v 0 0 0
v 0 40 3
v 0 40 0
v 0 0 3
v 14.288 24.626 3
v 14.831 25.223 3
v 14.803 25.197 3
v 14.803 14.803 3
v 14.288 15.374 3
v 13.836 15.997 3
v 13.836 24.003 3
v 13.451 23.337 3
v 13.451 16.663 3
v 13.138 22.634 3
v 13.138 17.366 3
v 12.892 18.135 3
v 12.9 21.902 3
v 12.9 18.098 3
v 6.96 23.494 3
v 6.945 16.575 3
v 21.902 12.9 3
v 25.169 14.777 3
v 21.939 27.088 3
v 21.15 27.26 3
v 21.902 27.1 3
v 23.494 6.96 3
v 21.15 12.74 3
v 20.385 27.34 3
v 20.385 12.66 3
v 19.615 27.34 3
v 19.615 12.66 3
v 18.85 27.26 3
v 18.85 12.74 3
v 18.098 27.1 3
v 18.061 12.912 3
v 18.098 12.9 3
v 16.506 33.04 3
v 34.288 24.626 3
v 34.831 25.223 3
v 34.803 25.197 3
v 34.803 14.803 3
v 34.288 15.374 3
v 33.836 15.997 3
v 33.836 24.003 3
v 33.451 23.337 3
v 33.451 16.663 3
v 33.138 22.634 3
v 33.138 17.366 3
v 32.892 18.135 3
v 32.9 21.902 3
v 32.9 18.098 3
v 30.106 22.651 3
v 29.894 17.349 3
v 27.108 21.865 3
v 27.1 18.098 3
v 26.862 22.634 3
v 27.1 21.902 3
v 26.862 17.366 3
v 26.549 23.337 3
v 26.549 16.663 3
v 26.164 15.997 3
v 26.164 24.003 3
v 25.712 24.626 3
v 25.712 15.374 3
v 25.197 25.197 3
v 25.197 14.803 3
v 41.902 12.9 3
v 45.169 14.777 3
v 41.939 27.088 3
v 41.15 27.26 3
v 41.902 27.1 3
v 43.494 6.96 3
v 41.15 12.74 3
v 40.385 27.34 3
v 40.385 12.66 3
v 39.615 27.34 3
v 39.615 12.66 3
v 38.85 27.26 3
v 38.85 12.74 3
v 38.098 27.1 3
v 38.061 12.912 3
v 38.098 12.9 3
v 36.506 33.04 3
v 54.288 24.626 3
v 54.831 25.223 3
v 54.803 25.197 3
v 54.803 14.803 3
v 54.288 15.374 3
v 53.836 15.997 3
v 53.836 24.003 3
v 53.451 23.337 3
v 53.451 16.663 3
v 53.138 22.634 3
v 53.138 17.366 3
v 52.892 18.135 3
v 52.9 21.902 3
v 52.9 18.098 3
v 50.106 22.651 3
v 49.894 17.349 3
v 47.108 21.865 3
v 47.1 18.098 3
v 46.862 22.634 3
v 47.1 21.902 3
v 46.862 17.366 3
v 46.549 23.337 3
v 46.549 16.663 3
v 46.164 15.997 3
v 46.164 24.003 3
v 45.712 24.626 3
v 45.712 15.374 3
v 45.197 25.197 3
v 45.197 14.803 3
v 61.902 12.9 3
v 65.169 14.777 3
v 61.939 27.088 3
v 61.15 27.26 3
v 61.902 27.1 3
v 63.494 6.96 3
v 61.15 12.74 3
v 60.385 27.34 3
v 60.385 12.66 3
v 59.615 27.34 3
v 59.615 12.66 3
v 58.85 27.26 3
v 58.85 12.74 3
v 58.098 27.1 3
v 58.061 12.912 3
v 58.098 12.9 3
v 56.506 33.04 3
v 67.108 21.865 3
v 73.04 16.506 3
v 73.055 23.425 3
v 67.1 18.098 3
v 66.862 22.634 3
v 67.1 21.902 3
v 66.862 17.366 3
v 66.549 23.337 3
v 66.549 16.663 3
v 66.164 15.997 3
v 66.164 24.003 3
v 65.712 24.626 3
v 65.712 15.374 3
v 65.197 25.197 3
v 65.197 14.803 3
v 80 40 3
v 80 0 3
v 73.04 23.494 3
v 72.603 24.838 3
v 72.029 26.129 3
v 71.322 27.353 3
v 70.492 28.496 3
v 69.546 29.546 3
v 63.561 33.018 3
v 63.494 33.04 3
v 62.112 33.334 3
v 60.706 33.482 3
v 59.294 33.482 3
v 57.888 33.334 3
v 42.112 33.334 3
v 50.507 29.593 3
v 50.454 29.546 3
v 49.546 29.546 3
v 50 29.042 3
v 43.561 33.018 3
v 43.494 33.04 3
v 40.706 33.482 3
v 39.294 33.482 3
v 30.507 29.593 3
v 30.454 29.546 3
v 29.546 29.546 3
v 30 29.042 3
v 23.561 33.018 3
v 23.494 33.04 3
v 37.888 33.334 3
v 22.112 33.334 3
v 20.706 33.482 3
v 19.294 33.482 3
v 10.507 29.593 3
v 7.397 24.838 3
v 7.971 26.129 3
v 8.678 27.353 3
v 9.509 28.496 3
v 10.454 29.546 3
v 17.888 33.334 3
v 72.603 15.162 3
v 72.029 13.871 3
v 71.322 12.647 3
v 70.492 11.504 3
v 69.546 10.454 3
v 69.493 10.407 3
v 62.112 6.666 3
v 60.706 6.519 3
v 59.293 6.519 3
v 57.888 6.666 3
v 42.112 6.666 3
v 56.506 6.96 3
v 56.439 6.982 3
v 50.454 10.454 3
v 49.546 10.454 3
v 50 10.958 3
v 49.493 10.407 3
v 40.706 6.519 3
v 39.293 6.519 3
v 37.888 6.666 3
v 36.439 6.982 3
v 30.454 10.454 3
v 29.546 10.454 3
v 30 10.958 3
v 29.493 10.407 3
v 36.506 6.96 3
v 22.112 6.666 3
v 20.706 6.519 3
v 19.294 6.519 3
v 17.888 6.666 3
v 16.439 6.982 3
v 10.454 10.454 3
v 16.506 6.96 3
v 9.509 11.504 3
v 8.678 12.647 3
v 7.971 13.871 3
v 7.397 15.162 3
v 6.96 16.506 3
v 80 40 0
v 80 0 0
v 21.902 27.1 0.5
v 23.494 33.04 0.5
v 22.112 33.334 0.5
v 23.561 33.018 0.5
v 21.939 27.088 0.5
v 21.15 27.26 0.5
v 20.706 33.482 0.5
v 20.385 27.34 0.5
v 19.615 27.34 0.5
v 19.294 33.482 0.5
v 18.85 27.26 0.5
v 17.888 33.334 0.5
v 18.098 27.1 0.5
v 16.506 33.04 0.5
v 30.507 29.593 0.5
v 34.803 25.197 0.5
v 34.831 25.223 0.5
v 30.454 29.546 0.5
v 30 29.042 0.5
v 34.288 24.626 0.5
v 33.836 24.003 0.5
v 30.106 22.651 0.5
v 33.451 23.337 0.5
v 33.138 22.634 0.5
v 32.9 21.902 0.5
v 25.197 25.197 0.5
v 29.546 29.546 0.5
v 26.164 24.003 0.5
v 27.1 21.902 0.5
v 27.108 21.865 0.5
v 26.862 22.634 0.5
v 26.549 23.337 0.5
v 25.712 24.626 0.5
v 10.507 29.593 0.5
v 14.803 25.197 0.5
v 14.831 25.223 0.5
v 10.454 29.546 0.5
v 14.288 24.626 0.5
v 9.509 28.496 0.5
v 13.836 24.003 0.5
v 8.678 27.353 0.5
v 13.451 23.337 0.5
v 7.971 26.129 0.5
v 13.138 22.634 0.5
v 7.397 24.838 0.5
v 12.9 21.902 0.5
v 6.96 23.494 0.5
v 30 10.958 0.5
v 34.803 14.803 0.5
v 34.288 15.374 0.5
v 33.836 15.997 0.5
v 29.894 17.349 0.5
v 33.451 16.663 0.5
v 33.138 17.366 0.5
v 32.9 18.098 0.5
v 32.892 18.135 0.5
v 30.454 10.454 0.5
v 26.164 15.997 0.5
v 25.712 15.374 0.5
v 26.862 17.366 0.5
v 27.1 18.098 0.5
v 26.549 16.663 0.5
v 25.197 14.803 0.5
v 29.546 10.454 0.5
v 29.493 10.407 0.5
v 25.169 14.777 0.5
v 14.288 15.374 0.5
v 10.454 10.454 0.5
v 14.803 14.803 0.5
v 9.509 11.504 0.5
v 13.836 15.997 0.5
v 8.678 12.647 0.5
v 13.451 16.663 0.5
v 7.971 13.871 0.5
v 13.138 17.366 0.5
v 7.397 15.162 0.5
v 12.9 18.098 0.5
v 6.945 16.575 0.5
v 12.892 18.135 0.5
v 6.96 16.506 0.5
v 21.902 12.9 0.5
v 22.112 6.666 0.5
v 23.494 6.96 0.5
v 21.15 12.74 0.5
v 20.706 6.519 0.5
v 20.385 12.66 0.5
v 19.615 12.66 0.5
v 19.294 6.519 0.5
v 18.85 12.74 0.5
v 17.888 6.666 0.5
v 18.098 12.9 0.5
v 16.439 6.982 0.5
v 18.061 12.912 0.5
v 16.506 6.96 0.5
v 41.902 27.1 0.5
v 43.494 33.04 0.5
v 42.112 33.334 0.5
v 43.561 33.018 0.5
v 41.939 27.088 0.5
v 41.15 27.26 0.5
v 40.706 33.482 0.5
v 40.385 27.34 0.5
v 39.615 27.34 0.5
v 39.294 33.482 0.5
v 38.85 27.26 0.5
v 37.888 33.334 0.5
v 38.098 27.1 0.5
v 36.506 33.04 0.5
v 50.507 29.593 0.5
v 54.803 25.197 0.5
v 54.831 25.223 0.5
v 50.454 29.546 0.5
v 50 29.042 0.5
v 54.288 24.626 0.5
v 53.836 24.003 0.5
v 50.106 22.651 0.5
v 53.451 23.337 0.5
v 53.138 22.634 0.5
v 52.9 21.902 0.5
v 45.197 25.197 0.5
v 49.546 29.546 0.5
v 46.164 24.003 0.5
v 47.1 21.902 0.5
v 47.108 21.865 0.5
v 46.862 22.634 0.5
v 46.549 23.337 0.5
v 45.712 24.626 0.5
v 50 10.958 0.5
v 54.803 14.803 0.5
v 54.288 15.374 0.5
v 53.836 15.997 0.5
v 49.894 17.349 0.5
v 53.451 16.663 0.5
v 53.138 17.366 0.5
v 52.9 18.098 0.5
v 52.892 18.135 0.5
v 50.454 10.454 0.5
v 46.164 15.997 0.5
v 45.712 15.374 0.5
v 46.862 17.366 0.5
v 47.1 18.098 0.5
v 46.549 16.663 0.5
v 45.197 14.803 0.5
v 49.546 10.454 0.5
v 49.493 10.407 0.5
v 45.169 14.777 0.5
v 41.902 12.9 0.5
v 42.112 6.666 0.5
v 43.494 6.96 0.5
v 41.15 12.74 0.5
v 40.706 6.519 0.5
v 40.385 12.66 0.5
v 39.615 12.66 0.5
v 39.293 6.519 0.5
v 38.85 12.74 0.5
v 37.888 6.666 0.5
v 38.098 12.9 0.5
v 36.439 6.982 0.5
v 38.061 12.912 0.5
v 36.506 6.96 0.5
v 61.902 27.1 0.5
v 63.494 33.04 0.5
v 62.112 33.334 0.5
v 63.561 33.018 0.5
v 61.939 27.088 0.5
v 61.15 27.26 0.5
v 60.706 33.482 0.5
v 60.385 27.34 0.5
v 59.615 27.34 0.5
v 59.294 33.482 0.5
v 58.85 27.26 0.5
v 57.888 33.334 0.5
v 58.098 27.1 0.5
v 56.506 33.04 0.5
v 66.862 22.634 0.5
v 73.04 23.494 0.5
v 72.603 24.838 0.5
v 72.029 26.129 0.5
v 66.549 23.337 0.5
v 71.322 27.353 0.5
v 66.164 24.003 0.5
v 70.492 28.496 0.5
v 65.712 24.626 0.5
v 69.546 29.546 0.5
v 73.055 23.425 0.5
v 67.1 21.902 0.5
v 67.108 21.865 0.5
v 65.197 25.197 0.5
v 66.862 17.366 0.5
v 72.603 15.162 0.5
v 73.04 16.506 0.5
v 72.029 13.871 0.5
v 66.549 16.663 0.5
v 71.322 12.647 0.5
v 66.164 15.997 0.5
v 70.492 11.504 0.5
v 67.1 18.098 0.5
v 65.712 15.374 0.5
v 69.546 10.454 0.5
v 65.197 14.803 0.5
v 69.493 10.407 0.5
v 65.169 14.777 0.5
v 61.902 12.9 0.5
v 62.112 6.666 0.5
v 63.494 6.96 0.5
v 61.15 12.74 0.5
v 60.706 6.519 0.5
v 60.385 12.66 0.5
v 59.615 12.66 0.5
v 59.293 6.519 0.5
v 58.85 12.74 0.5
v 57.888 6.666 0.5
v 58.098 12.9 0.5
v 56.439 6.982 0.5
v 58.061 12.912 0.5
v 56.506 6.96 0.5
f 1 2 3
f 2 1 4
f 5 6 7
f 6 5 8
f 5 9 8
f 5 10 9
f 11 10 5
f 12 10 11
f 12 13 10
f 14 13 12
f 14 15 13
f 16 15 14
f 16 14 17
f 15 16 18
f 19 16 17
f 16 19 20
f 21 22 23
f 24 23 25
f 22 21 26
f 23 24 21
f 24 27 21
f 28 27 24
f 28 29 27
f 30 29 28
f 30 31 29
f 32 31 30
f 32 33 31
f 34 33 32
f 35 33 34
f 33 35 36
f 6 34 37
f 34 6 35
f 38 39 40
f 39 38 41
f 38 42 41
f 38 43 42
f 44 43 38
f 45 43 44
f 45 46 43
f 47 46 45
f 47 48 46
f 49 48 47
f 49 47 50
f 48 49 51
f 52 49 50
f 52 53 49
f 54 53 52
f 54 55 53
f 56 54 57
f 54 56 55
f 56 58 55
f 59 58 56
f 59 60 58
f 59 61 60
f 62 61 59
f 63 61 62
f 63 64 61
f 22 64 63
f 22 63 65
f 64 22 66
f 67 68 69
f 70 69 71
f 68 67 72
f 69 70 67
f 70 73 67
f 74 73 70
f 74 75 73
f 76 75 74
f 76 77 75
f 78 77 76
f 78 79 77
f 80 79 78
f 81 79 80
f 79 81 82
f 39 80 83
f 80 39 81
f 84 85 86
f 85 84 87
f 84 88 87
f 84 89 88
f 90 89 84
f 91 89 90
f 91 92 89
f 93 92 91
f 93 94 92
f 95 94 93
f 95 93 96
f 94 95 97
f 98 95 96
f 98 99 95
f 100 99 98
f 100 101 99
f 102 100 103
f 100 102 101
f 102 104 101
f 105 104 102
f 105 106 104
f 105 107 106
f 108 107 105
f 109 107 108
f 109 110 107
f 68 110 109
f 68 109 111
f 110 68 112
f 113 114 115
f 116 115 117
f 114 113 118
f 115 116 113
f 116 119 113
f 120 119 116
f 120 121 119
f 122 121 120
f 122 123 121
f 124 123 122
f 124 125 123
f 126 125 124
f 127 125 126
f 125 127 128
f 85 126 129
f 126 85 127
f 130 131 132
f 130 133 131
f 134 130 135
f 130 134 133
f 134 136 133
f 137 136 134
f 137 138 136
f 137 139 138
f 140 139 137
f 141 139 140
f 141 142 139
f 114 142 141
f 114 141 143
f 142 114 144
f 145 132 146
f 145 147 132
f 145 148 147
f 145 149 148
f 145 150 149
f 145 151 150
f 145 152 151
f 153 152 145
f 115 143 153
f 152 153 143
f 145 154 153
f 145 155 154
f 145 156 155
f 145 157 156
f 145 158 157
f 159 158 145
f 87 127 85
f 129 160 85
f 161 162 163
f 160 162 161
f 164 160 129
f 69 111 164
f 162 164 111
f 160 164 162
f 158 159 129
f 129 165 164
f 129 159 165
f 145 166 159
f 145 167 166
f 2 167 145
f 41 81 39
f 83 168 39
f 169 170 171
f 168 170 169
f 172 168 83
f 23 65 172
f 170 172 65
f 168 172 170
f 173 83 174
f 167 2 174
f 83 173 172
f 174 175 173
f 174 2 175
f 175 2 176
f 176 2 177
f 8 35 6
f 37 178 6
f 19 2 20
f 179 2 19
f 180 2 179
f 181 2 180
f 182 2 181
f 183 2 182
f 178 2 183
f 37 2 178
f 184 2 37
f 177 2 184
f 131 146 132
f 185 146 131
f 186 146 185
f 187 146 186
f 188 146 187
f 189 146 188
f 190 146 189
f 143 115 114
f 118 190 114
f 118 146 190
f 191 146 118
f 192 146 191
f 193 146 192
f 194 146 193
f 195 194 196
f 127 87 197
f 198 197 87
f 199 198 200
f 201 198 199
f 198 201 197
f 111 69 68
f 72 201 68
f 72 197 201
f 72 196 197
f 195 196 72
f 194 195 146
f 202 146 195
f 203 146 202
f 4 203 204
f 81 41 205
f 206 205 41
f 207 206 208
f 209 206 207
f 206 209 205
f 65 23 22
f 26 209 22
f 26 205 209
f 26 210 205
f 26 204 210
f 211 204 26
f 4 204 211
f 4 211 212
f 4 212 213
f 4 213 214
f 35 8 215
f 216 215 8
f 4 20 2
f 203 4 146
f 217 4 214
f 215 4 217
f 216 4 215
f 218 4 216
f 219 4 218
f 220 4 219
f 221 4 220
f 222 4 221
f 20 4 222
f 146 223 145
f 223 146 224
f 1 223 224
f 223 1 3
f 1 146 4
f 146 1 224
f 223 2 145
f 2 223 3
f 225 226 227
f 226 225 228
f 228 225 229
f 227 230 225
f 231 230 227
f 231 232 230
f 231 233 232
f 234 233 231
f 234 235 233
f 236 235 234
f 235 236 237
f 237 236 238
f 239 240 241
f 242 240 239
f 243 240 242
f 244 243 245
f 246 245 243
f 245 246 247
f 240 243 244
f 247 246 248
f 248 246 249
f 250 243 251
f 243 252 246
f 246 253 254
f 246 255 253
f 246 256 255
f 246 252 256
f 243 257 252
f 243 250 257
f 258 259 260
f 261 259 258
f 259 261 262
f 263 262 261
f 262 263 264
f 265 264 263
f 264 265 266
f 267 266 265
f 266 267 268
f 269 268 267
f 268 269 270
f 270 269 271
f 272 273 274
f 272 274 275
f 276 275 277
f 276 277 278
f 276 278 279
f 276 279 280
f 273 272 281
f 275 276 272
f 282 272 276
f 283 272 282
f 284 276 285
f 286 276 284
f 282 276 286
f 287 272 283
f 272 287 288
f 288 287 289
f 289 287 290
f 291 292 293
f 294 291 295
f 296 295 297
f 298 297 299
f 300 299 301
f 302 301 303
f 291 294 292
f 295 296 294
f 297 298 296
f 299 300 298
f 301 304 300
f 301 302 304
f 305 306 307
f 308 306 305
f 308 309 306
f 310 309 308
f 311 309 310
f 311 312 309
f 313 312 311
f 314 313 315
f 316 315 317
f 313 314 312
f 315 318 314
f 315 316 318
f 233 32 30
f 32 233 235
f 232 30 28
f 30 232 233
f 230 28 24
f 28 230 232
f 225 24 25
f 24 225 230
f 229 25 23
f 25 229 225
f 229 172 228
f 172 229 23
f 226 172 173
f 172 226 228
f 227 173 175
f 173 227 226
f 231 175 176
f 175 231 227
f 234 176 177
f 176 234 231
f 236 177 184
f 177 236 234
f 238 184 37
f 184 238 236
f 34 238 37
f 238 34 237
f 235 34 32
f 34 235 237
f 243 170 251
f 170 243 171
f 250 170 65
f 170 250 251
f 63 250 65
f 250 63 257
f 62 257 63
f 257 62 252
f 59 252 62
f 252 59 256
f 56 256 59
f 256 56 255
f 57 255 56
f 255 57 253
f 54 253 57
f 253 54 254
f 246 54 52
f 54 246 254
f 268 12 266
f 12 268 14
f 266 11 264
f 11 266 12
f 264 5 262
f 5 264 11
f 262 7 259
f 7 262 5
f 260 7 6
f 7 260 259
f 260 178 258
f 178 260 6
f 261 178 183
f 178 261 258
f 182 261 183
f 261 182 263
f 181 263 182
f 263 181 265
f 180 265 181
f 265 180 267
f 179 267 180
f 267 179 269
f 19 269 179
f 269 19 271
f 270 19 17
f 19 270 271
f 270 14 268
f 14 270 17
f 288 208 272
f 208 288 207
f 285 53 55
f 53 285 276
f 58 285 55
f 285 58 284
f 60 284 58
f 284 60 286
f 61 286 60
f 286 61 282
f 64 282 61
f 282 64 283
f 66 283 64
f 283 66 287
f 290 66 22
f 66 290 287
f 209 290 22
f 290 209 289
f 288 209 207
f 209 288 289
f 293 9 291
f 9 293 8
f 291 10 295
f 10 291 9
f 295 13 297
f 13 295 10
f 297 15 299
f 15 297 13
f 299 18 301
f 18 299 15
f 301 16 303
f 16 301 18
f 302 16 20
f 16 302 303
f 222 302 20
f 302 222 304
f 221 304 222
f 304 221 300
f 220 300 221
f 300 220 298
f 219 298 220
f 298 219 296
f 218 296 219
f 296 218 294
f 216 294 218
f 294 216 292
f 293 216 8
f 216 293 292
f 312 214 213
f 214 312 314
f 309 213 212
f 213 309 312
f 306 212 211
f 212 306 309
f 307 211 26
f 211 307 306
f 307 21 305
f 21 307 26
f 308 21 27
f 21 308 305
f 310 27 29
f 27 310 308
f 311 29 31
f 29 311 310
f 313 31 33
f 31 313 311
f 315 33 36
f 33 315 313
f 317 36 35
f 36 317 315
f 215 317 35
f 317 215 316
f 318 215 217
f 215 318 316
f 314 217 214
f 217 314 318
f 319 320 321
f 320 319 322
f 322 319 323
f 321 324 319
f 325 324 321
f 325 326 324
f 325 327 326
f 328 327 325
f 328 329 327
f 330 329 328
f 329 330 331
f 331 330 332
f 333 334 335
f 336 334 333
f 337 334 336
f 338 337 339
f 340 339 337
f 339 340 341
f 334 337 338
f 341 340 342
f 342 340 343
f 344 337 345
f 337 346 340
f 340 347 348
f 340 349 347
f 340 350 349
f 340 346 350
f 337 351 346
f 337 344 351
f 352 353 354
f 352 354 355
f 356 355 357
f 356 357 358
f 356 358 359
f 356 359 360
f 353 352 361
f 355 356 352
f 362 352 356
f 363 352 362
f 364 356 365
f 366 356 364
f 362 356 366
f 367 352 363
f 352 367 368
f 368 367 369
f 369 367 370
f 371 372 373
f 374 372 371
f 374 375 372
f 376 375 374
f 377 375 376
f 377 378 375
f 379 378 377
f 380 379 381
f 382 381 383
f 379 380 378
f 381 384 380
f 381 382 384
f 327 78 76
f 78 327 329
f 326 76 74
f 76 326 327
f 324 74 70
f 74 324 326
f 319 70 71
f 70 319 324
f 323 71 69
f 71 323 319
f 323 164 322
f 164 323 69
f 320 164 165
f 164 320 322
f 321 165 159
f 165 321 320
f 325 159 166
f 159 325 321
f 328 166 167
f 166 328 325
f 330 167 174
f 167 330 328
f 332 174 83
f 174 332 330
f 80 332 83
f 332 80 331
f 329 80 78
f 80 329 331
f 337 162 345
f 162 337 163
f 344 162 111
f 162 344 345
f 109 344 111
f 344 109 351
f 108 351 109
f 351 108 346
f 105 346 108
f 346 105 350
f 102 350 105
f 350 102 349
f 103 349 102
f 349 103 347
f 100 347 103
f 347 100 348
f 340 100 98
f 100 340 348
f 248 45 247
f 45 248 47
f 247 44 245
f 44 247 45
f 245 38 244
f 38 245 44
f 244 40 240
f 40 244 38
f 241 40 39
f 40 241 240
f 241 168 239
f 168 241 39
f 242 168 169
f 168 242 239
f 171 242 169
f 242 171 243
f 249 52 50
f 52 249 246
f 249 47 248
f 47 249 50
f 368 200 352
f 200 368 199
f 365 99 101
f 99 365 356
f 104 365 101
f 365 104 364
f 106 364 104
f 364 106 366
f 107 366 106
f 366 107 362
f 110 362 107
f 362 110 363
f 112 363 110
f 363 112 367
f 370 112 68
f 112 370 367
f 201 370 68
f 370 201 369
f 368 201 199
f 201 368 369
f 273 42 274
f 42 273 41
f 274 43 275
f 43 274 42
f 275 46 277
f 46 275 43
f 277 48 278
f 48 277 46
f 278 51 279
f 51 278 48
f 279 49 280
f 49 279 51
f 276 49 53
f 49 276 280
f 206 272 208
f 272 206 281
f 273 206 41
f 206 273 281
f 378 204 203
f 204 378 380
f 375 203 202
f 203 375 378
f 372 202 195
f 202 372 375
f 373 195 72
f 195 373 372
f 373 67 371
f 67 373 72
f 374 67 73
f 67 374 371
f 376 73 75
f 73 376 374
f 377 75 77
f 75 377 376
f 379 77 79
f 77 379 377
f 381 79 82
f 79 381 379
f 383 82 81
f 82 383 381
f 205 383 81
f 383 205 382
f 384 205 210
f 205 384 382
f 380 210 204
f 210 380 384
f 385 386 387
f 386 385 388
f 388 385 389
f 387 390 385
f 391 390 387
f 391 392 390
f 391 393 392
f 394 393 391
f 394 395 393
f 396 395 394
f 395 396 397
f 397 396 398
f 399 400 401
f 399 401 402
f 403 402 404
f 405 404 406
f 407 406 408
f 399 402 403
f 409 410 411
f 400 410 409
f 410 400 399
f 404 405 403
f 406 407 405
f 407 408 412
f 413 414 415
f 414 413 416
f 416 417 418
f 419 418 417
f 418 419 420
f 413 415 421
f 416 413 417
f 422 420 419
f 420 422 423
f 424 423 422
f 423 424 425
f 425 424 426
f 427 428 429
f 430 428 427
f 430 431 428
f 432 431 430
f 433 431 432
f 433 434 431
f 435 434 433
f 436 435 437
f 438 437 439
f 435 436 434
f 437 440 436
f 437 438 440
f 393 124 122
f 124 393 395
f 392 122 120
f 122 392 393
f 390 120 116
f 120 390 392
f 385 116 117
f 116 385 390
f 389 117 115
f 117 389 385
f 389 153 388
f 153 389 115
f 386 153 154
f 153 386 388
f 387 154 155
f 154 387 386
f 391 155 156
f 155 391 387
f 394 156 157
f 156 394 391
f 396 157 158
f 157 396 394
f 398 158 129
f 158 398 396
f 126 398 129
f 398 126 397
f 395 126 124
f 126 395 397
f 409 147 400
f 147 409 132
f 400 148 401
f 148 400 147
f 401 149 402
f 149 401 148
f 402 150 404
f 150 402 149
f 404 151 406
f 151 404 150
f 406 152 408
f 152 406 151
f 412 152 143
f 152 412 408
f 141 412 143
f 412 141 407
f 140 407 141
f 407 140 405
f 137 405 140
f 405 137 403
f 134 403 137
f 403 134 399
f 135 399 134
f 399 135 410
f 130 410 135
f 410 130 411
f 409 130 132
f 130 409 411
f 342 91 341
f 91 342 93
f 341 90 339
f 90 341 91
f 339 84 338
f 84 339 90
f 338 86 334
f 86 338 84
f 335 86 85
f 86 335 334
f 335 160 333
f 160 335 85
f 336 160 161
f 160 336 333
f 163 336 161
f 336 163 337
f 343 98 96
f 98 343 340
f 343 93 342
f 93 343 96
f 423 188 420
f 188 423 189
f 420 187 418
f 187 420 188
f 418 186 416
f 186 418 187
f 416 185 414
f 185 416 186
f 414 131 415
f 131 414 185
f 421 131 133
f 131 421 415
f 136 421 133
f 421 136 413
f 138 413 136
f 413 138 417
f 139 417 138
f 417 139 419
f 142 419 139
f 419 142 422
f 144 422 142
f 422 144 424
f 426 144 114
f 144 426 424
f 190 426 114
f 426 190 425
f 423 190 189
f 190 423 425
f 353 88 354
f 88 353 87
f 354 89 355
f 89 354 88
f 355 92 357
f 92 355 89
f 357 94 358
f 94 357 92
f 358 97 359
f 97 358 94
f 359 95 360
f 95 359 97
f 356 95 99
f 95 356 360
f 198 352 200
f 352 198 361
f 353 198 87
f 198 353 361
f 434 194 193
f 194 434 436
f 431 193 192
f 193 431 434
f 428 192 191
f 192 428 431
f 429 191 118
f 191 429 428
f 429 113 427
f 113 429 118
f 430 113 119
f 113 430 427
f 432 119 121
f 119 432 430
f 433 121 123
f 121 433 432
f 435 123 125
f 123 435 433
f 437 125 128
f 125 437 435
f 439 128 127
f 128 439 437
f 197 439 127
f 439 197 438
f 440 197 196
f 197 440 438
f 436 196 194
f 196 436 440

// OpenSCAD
// file: tbhub-core.scad
/*
Copyright (c) 2017 Paul Austin - SDG

Permission is hereby granted, free of charge, to any person obtaining a copy
of this software and associated documentation files (the "Software"), to deal
in the Software without restriction, including without limitation the rights
to use, copy, modify, merge, publish, distribute, sublicense, and/or sell
copies of the Software, and to permit persons to whom the Software is
furnished to do so, subject to the following conditions:

The above copyright notice and this permission notice shall be included in all
copies or substantial portions of the Software.

THE SOFTWARE IS PROVIDED "AS IS", WITHOUT WARRANTY OF ANY KIND, EXPRESS OR
IMPLIED, INCLUDING BUT NOT LIMITED TO THE WARRANTIES OF MERCHANTABILITY,
FITNESS FOR A PARTICULAR PURPOSE AND NONINFRINGEMENT. IN NO EVENT SHALL THE
AUTHORS OR COPYRIGHT HOLDERS BE LIABLE FOR ANY CLAIM, DAMAGES OR OTHER
LIABILITY, WHETHER IN AN ACTION OF CONTRACT, TORT OR OTHERWISE, ARISING FROM,
OUT OF OR IN CONNECTION WITH THE SOFTWARE OR THE USE OR OTHER DEALINGS IN THE
SOFTWARE.
*/

$fn = 50;

module coreHub(splineCount = 20, coreH = 4.5, splineH = 3, splineD=5.0, d = 8.5) {
    
    // Approx spline shaft diameters
    // sg90(subMicro) - 5mm
    // micro          - 6mm
    screwFlangeThickness = 3.5;
    screwHeadDiameter = 5;
    screwShaftDiameter = 2.2;
    
    // The main shaft hub
    difference() {
        cylinder($fn = 6, d=d, h=splineH);
        cylinder(d=splineD+0.35, h=splineH);
    }

    // Splines on the inside of the hub
    color("red") linear_extrude(splineH)
    for ( rib = [0:(360/splineCount):360]) {
        // Pivot aroung origin
        rotate([0,0,rib])
        // Move out from origin
        translate([splineD/2+0.2,0,0])
        // Make corner face origin
        rotate([0,0,45])
        // Make a square
        square([0.7,0.7], center = true);
    }
    

    // Hole for the screw
    color("green") difference() {    
        translate([0,0,splineH]) cylinder($fn = 6, d=d,h=(coreH - splineH));
        {
        translate([0,0,splineH]) cylinder(d=screwShaftDiameter, h=screwFlangeThickness);
        translate([0,0,splineH+screwFlangeThickness]) cylinder(d=screwHeadDiameter,h=10);
        #translate([0,0,1.3])sphere(d=5.5);
        }
    }
    
}

rotate([180,0,0]) coreHub(splineCount = 21, coreH = 10);
// file: peg-plug.scad
/*
Copyright 2017 Trashbots Inc.

Licensed under the Apache License, Version 2.0 (the "License");
you may not use this file except in compliance with the License.
You may obtain a copy of the License at

    http://www.apache.org/licenses/LICENSE-2.0

Unless required by applicable law or agreed to in writing, software
distributed under the License is distributed on an "AS IS" BASIS,
WITHOUT WARRANTIES OR CONDITIONS OF ANY KIND, either express or implied.
See the License for the specific language governing permissions and
limitations under the License.
*/

$fn = 60;

// rotate (-step/4) translate([0,0,-baseHieght]) linear_extrude(baseHieght) circle(d=diameter);

module circlePegs (pegs = 6, diameter = 26.8, innerDiameter = 15, height = 3, fudge = 1.04) {
    step        = 360 / pegs;

    // Additional amount keeps the plug from binding too hard when 
    // pluged into a complimentary part.
    halfStep    = (step / 2) * fudge;
    radius      = (diameter / 2);
    pegHeight   = height;
    
    rotate (-step/4) 
    linear_extrude(height=pegHeight) 
    difference () {
        difference() {
            circle(d=diameter);
            circle(d=innerDiameter);
        }
        for (i = [0:step:360]) {
            // The diameter is used so the triangle is much longer than the edges need
            // but long enough to clear out the entire wedge.
            polygon([
                    [0,0],
                    [diameter * cos(i), diameter * sin(i) ],
                    [diameter * cos(i + (halfStep)), diameter * sin(i+(halfStep)) ]
                    ]);
        }
    }
}


module circlePegsWithBase(pegs = 6, diameter = 26.8, innerDiameter = 15, heigth = 6) {
    baseHieght  = heigth / 2;

    translate([0,0,-baseHieght]) linear_extrude(heigth/2) circle(d=diameter);
    circlePegs(pegs, diameter, innerDiameter, heigth/2);
}


circlePegsWithBase();
// file: hub.scad
/*
Copyright (c) 2017 Paul Austin - SDG

Permission is hereby granted, free of charge, to any person obtaining a copy
of this software and associated documentation files (the "Software"), to deal
in the Software without restriction, including without limitation the rights
to use, copy, modify, merge, publish, distribute, sublicense, and/or sell
copies of the Software, and to permit persons to whom the Software is
furnished to do so, subject to the following conditions:

The above copyright notice and this permission notice shall be included in all
copies or substantial portions of the Software.

THE SOFTWARE IS PROVIDED "AS IS", WITHOUT WARRANTY OF ANY KIND, EXPRESS OR
IMPLIED, INCLUDING BUT NOT LIMITED TO THE WARRANTIES OF MERCHANTABILITY,
FITNESS FOR A PARTICULAR PURPOSE AND NONINFRINGEMENT. IN NO EVENT SHALL THE
AUTHORS OR COPYRIGHT HOLDERS BE LIABLE FOR ANY CLAIM, DAMAGES OR OTHER
LIABILITY, WHETHER IN AN ACTION OF CONTRACT, TORT OR OTHERWISE, ARISING FROM,
OUT OF OR IN CONNECTION WITH THE SOFTWARE OR THE USE OR OTHER DEALINGS IN THE
SOFTWARE.
*/


$fn=60;

use <tbhub-core.scad>

// dimensions units in mm
slatWidth = 10;
slatDepth = 10;
slatThickness = 1.9;
stickDiameter = 6;
hubDiameter = 20;
coreDiameter = 6.9;

// Strategy 
// 1. Core hub + spline core
// 2. Remove slots
// 3. Remove compression slots

// Version history
//  v0.1.0 Initial print test for Reynosa trip
//  v0.1.2 Widened slot to 10.2mm, and chamfer used vars
//  v0.1.3 Peg insets are 0.15mm deeper to allow for printing

// Cylinder with slot in it for optional key, and bevel
module slottedShaft(d=8, h=10) {
    slotWidth = 10.2;
    slotThickness = 2.1; 
    chamfer = 1.1;
    cylinder(d=d,h=h);
    translate([0,0,h-2.1]) cylinder(r2=(d/2)+chamfer, r1=(d/2), h=2.1);
    translate([-(slotWidth/2),-(slotThickness/2),0]) cube([slotWidth,slotThickness,h]);
    translate([0,0,0]) cylinder(r1=(d/2)+chamfer, r2=(d/2), h=2.1);
}

// Hub
module plugHub(plugCount = 6) {
    difference() {
        color("cyan") rotate_extrude() {
            difference(){
                translate([0,0,0]) square([hubDiameter,slatWidth]);
                translate([hubDiameter+2,slatWidth/2,0]) circle(d=slatWidth-1);
            }
        }

        #union () {
            slottedShaft();
           // coreHub(h = slatWidth, splineCount = 21, splineH = 3, d = 10.5);
           // translate([0,0,-0.5]) cylinder(h = slatWidth+1, d = coreDiameter);
            for(i=[0:(360/plugCount):360]) {
                translate([0,0,0])
                rotate(i)
                translate([hubDiameter-slatDepth,0,-0.5]) rotate([90,0,0])  {
                    // Slot for a popsicle stick
                    translate([0,0,-slatThickness/2])   
                    linear_extrude(slatThickness) square([slatDepth,slatWidth+1]);
                    
                    // Carve out back of slot as well
                    translate([3.3,(slatWidth+1)/2,-slatThickness/2])   cylinder(h = slatThickness, d = slatWidth*1.2);
                    
                    // Cylinder for straw 
                    translate([0,(slatWidth+1)/2,0])
                    rotate([90,0,90]) cylinder(d=stickDiameter, h=slatDepth);
                }
            }
        }
    }
}

use <peg-plug.scad>;

module pegPlugHub(pegCount = 6, pegHeight = 2.5) {

    // When subtracting teh pegs, make them bit larger, and deeper.
    // TODO pull these tweak to high level settings, they may apply to to multiple pieces.
    difference() {
        rotate([0,0,-15]) plugHub(plugCount = pegCount);
        rotate([0,0,-15]) circlePegs(pegs = pegCount, diameter=27.0, height=pegHeight+0.15, innerDiameter = 14.7, fudge = 0.99);
    }

    translate ([0,0,10]) rotate([0,0,-15]) circlePegs(pegs = pegCount, diameter=26.8, height=pegHeight);
}
// Rotaate 15deg to aling a set of slots along hte 45deg axis, this helps with 
// default file and surface fills
rotate([0,0,-15]) plugHub(plugCount = 6);
// main file
use <hub.scad>;
use <peg-plug.scad>;

plateWidth = 80;
plateWidth = 80;
plateThickness = 80;

module negativePegRing (pegCount = 6, diameter = 26.8, innerDiameter = 15, height = 2.5) {
    od = diameter + 0.2;
    id = innerDiameter - 0.3;
    wedgeFuge = 0.99;
    circlePegs(pegs = pegCount, diameter=od, height=height, innerDiameter = id, fudge = wedgeFuge);
}
       
difference() {
    cube([plateWidth, 40.0, 3.0]);
    translate([20,20,0.5]) negativePegRing();
    // slight rotate to align dufference due to wedgeFuge. Make it look symetrical.
    translate([40,20,0.5]) negativePegRing();
    translate([60,20,0.5]) negativePegRing();
}
